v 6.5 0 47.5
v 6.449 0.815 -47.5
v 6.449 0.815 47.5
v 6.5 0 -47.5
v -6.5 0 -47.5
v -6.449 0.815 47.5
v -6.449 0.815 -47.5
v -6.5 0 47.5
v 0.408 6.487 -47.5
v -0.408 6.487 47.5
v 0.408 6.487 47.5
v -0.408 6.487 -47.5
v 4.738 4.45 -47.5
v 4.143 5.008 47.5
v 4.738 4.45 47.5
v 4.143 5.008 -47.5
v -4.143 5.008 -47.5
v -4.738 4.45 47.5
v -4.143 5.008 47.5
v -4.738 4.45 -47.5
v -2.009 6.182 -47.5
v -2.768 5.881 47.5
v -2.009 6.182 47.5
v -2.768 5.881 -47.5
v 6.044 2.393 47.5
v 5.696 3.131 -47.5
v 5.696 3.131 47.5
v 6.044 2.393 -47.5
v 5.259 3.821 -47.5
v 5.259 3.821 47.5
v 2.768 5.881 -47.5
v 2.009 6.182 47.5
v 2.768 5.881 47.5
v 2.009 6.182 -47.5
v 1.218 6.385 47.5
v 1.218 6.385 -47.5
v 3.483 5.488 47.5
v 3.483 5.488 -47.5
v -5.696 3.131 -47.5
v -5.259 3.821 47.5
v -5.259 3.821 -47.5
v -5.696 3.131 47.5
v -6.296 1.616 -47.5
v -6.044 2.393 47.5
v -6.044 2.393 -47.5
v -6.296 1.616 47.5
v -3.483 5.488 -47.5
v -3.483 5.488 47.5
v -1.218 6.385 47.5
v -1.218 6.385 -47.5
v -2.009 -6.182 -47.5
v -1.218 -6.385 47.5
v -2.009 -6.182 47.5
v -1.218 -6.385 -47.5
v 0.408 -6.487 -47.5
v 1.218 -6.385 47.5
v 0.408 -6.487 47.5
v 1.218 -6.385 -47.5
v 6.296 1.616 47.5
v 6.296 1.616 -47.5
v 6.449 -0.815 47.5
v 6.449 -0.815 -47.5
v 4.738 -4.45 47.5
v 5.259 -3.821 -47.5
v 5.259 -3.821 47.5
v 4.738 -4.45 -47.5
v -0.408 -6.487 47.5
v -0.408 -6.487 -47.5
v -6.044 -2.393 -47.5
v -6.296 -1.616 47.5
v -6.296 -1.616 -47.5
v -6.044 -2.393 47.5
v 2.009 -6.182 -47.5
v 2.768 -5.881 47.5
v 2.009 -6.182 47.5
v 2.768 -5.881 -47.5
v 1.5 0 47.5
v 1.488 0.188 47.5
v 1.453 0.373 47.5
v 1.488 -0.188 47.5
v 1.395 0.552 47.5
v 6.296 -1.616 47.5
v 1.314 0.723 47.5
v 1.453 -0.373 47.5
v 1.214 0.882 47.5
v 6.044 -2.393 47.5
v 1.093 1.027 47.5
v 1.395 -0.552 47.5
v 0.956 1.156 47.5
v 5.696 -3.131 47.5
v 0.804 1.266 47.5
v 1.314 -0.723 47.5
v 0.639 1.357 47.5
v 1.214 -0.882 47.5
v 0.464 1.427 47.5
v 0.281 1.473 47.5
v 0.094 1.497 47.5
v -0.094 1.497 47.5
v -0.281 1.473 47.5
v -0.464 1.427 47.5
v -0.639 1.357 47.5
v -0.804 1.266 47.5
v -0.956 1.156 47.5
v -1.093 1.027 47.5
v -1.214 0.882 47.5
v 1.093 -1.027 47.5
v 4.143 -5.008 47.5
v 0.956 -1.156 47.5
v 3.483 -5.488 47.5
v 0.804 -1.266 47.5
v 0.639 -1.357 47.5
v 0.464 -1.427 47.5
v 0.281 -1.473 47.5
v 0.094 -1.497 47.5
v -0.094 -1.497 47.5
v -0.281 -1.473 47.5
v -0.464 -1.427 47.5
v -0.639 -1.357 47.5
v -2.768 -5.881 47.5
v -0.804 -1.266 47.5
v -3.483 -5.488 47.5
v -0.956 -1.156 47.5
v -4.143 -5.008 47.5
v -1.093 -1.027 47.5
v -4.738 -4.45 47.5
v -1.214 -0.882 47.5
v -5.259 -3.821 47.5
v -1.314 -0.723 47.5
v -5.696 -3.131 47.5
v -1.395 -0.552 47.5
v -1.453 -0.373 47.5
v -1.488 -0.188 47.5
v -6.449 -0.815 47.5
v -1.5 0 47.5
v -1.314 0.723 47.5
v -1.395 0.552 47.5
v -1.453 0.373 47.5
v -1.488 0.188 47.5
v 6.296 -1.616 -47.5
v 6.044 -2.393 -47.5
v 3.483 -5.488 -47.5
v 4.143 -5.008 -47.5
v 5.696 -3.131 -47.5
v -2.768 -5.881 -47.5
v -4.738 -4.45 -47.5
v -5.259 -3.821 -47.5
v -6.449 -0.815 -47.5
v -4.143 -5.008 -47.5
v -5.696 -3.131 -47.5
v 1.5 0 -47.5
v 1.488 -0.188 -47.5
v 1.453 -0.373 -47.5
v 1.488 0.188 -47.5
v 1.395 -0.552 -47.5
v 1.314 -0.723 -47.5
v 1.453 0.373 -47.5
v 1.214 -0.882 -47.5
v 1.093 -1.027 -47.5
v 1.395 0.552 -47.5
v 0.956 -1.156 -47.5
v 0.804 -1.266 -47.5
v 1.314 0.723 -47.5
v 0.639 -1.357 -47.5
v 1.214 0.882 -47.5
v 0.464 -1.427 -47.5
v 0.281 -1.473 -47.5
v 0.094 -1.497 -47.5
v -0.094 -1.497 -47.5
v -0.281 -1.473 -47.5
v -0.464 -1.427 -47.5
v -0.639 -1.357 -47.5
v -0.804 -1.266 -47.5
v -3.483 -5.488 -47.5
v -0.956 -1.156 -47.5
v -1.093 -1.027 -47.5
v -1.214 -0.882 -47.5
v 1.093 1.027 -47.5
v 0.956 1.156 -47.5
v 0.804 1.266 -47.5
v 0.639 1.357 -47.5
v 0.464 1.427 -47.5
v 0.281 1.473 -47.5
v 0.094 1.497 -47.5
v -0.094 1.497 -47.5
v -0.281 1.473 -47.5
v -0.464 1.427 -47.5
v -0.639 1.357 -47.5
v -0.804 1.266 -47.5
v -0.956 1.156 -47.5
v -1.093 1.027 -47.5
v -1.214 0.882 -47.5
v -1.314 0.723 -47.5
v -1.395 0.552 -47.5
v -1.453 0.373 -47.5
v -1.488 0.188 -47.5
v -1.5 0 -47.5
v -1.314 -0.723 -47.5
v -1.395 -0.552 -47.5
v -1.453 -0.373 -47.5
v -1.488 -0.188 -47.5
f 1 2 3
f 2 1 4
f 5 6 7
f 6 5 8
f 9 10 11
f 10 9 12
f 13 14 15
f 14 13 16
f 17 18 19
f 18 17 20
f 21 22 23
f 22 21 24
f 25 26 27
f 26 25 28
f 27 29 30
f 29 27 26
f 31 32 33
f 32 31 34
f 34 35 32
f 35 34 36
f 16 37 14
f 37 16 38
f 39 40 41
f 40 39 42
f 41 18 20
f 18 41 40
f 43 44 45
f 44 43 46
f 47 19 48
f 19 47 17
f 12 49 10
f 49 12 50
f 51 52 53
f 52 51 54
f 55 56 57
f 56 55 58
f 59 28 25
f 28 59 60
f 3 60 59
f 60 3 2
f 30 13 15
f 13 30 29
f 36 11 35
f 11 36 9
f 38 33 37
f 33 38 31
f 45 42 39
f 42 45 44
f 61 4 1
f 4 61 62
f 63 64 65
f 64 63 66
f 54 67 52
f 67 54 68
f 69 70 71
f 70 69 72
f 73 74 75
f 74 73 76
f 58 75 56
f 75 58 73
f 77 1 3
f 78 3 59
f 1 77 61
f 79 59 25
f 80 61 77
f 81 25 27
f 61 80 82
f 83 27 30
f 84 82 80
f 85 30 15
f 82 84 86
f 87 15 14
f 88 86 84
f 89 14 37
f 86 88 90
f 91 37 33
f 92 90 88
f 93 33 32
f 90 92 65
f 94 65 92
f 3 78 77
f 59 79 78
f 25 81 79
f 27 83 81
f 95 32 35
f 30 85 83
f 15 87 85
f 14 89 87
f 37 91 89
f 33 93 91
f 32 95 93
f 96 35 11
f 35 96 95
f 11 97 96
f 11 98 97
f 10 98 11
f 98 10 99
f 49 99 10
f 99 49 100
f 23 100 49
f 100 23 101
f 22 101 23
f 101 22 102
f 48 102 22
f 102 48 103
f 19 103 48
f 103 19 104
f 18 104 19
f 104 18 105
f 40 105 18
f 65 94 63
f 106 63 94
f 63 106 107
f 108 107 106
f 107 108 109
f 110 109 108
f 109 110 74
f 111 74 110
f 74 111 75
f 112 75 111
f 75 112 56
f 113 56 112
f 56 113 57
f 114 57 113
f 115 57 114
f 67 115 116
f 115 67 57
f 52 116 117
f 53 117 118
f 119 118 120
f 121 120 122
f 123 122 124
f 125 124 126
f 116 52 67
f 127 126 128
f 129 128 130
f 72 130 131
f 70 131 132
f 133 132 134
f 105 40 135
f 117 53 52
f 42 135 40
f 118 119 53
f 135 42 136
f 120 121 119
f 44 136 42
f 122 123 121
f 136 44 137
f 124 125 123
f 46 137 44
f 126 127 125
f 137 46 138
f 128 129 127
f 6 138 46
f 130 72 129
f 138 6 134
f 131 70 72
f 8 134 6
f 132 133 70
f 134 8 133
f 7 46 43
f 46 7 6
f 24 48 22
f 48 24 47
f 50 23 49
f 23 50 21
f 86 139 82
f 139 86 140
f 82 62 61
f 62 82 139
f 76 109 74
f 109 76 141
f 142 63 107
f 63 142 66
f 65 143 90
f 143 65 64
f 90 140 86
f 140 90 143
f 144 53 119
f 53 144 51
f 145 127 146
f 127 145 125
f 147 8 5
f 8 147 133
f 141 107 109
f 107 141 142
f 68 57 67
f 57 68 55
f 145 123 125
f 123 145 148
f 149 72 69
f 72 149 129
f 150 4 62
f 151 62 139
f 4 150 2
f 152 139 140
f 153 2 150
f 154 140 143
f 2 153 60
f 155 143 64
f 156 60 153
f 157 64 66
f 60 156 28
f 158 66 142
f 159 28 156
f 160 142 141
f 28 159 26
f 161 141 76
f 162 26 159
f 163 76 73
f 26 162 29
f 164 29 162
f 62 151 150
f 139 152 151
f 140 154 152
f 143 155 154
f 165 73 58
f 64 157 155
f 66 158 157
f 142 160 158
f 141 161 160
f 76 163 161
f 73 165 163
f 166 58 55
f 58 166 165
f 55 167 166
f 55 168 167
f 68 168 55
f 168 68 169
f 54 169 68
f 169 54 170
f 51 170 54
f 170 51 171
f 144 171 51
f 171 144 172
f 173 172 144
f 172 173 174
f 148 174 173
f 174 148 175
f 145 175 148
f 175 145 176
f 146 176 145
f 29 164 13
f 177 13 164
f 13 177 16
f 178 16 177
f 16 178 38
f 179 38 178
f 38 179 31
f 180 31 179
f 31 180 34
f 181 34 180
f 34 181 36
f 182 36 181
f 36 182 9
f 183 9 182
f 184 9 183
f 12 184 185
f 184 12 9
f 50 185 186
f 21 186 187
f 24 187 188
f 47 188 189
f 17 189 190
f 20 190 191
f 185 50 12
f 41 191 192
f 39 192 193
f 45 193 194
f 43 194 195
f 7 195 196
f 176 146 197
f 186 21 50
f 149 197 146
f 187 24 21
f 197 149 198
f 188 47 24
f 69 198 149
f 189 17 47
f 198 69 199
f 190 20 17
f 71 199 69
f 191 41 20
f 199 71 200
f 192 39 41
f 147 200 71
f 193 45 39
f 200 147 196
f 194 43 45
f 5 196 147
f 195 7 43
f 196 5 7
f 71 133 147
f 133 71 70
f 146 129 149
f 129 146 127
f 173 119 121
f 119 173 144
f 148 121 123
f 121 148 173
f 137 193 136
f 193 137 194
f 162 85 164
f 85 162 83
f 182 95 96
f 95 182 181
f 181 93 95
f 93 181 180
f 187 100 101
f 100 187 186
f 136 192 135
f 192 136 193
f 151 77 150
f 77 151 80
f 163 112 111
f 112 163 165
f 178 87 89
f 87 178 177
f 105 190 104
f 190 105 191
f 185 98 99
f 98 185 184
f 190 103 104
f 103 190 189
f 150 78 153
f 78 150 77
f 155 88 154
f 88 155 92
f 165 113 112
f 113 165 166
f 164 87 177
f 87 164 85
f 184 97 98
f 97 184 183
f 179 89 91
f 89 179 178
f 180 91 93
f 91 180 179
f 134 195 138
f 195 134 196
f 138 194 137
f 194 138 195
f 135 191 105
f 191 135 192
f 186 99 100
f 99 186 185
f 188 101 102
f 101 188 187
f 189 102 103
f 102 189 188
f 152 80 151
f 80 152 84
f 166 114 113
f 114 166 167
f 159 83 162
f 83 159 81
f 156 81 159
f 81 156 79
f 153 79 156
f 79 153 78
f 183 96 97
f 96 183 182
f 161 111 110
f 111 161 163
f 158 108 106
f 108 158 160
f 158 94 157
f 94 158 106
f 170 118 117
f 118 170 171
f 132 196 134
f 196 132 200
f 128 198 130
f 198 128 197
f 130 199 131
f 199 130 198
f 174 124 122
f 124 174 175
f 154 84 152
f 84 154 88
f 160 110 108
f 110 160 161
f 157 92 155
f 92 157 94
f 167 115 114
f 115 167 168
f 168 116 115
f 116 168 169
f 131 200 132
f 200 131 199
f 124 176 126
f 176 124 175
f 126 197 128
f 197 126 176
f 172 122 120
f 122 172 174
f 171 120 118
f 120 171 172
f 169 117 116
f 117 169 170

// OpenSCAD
$fn = 50;


difference() {
	union() {
		translate(v = [0, 0, -47.5000000000]) {
			cylinder(h = 95, r = 6.5000000000);
		}
	}
	union() {
		translate(v = [0, 0, -100.0000000000]) {
			cylinder(h = 200, r = 1.5000000000);
		}
	}
}
